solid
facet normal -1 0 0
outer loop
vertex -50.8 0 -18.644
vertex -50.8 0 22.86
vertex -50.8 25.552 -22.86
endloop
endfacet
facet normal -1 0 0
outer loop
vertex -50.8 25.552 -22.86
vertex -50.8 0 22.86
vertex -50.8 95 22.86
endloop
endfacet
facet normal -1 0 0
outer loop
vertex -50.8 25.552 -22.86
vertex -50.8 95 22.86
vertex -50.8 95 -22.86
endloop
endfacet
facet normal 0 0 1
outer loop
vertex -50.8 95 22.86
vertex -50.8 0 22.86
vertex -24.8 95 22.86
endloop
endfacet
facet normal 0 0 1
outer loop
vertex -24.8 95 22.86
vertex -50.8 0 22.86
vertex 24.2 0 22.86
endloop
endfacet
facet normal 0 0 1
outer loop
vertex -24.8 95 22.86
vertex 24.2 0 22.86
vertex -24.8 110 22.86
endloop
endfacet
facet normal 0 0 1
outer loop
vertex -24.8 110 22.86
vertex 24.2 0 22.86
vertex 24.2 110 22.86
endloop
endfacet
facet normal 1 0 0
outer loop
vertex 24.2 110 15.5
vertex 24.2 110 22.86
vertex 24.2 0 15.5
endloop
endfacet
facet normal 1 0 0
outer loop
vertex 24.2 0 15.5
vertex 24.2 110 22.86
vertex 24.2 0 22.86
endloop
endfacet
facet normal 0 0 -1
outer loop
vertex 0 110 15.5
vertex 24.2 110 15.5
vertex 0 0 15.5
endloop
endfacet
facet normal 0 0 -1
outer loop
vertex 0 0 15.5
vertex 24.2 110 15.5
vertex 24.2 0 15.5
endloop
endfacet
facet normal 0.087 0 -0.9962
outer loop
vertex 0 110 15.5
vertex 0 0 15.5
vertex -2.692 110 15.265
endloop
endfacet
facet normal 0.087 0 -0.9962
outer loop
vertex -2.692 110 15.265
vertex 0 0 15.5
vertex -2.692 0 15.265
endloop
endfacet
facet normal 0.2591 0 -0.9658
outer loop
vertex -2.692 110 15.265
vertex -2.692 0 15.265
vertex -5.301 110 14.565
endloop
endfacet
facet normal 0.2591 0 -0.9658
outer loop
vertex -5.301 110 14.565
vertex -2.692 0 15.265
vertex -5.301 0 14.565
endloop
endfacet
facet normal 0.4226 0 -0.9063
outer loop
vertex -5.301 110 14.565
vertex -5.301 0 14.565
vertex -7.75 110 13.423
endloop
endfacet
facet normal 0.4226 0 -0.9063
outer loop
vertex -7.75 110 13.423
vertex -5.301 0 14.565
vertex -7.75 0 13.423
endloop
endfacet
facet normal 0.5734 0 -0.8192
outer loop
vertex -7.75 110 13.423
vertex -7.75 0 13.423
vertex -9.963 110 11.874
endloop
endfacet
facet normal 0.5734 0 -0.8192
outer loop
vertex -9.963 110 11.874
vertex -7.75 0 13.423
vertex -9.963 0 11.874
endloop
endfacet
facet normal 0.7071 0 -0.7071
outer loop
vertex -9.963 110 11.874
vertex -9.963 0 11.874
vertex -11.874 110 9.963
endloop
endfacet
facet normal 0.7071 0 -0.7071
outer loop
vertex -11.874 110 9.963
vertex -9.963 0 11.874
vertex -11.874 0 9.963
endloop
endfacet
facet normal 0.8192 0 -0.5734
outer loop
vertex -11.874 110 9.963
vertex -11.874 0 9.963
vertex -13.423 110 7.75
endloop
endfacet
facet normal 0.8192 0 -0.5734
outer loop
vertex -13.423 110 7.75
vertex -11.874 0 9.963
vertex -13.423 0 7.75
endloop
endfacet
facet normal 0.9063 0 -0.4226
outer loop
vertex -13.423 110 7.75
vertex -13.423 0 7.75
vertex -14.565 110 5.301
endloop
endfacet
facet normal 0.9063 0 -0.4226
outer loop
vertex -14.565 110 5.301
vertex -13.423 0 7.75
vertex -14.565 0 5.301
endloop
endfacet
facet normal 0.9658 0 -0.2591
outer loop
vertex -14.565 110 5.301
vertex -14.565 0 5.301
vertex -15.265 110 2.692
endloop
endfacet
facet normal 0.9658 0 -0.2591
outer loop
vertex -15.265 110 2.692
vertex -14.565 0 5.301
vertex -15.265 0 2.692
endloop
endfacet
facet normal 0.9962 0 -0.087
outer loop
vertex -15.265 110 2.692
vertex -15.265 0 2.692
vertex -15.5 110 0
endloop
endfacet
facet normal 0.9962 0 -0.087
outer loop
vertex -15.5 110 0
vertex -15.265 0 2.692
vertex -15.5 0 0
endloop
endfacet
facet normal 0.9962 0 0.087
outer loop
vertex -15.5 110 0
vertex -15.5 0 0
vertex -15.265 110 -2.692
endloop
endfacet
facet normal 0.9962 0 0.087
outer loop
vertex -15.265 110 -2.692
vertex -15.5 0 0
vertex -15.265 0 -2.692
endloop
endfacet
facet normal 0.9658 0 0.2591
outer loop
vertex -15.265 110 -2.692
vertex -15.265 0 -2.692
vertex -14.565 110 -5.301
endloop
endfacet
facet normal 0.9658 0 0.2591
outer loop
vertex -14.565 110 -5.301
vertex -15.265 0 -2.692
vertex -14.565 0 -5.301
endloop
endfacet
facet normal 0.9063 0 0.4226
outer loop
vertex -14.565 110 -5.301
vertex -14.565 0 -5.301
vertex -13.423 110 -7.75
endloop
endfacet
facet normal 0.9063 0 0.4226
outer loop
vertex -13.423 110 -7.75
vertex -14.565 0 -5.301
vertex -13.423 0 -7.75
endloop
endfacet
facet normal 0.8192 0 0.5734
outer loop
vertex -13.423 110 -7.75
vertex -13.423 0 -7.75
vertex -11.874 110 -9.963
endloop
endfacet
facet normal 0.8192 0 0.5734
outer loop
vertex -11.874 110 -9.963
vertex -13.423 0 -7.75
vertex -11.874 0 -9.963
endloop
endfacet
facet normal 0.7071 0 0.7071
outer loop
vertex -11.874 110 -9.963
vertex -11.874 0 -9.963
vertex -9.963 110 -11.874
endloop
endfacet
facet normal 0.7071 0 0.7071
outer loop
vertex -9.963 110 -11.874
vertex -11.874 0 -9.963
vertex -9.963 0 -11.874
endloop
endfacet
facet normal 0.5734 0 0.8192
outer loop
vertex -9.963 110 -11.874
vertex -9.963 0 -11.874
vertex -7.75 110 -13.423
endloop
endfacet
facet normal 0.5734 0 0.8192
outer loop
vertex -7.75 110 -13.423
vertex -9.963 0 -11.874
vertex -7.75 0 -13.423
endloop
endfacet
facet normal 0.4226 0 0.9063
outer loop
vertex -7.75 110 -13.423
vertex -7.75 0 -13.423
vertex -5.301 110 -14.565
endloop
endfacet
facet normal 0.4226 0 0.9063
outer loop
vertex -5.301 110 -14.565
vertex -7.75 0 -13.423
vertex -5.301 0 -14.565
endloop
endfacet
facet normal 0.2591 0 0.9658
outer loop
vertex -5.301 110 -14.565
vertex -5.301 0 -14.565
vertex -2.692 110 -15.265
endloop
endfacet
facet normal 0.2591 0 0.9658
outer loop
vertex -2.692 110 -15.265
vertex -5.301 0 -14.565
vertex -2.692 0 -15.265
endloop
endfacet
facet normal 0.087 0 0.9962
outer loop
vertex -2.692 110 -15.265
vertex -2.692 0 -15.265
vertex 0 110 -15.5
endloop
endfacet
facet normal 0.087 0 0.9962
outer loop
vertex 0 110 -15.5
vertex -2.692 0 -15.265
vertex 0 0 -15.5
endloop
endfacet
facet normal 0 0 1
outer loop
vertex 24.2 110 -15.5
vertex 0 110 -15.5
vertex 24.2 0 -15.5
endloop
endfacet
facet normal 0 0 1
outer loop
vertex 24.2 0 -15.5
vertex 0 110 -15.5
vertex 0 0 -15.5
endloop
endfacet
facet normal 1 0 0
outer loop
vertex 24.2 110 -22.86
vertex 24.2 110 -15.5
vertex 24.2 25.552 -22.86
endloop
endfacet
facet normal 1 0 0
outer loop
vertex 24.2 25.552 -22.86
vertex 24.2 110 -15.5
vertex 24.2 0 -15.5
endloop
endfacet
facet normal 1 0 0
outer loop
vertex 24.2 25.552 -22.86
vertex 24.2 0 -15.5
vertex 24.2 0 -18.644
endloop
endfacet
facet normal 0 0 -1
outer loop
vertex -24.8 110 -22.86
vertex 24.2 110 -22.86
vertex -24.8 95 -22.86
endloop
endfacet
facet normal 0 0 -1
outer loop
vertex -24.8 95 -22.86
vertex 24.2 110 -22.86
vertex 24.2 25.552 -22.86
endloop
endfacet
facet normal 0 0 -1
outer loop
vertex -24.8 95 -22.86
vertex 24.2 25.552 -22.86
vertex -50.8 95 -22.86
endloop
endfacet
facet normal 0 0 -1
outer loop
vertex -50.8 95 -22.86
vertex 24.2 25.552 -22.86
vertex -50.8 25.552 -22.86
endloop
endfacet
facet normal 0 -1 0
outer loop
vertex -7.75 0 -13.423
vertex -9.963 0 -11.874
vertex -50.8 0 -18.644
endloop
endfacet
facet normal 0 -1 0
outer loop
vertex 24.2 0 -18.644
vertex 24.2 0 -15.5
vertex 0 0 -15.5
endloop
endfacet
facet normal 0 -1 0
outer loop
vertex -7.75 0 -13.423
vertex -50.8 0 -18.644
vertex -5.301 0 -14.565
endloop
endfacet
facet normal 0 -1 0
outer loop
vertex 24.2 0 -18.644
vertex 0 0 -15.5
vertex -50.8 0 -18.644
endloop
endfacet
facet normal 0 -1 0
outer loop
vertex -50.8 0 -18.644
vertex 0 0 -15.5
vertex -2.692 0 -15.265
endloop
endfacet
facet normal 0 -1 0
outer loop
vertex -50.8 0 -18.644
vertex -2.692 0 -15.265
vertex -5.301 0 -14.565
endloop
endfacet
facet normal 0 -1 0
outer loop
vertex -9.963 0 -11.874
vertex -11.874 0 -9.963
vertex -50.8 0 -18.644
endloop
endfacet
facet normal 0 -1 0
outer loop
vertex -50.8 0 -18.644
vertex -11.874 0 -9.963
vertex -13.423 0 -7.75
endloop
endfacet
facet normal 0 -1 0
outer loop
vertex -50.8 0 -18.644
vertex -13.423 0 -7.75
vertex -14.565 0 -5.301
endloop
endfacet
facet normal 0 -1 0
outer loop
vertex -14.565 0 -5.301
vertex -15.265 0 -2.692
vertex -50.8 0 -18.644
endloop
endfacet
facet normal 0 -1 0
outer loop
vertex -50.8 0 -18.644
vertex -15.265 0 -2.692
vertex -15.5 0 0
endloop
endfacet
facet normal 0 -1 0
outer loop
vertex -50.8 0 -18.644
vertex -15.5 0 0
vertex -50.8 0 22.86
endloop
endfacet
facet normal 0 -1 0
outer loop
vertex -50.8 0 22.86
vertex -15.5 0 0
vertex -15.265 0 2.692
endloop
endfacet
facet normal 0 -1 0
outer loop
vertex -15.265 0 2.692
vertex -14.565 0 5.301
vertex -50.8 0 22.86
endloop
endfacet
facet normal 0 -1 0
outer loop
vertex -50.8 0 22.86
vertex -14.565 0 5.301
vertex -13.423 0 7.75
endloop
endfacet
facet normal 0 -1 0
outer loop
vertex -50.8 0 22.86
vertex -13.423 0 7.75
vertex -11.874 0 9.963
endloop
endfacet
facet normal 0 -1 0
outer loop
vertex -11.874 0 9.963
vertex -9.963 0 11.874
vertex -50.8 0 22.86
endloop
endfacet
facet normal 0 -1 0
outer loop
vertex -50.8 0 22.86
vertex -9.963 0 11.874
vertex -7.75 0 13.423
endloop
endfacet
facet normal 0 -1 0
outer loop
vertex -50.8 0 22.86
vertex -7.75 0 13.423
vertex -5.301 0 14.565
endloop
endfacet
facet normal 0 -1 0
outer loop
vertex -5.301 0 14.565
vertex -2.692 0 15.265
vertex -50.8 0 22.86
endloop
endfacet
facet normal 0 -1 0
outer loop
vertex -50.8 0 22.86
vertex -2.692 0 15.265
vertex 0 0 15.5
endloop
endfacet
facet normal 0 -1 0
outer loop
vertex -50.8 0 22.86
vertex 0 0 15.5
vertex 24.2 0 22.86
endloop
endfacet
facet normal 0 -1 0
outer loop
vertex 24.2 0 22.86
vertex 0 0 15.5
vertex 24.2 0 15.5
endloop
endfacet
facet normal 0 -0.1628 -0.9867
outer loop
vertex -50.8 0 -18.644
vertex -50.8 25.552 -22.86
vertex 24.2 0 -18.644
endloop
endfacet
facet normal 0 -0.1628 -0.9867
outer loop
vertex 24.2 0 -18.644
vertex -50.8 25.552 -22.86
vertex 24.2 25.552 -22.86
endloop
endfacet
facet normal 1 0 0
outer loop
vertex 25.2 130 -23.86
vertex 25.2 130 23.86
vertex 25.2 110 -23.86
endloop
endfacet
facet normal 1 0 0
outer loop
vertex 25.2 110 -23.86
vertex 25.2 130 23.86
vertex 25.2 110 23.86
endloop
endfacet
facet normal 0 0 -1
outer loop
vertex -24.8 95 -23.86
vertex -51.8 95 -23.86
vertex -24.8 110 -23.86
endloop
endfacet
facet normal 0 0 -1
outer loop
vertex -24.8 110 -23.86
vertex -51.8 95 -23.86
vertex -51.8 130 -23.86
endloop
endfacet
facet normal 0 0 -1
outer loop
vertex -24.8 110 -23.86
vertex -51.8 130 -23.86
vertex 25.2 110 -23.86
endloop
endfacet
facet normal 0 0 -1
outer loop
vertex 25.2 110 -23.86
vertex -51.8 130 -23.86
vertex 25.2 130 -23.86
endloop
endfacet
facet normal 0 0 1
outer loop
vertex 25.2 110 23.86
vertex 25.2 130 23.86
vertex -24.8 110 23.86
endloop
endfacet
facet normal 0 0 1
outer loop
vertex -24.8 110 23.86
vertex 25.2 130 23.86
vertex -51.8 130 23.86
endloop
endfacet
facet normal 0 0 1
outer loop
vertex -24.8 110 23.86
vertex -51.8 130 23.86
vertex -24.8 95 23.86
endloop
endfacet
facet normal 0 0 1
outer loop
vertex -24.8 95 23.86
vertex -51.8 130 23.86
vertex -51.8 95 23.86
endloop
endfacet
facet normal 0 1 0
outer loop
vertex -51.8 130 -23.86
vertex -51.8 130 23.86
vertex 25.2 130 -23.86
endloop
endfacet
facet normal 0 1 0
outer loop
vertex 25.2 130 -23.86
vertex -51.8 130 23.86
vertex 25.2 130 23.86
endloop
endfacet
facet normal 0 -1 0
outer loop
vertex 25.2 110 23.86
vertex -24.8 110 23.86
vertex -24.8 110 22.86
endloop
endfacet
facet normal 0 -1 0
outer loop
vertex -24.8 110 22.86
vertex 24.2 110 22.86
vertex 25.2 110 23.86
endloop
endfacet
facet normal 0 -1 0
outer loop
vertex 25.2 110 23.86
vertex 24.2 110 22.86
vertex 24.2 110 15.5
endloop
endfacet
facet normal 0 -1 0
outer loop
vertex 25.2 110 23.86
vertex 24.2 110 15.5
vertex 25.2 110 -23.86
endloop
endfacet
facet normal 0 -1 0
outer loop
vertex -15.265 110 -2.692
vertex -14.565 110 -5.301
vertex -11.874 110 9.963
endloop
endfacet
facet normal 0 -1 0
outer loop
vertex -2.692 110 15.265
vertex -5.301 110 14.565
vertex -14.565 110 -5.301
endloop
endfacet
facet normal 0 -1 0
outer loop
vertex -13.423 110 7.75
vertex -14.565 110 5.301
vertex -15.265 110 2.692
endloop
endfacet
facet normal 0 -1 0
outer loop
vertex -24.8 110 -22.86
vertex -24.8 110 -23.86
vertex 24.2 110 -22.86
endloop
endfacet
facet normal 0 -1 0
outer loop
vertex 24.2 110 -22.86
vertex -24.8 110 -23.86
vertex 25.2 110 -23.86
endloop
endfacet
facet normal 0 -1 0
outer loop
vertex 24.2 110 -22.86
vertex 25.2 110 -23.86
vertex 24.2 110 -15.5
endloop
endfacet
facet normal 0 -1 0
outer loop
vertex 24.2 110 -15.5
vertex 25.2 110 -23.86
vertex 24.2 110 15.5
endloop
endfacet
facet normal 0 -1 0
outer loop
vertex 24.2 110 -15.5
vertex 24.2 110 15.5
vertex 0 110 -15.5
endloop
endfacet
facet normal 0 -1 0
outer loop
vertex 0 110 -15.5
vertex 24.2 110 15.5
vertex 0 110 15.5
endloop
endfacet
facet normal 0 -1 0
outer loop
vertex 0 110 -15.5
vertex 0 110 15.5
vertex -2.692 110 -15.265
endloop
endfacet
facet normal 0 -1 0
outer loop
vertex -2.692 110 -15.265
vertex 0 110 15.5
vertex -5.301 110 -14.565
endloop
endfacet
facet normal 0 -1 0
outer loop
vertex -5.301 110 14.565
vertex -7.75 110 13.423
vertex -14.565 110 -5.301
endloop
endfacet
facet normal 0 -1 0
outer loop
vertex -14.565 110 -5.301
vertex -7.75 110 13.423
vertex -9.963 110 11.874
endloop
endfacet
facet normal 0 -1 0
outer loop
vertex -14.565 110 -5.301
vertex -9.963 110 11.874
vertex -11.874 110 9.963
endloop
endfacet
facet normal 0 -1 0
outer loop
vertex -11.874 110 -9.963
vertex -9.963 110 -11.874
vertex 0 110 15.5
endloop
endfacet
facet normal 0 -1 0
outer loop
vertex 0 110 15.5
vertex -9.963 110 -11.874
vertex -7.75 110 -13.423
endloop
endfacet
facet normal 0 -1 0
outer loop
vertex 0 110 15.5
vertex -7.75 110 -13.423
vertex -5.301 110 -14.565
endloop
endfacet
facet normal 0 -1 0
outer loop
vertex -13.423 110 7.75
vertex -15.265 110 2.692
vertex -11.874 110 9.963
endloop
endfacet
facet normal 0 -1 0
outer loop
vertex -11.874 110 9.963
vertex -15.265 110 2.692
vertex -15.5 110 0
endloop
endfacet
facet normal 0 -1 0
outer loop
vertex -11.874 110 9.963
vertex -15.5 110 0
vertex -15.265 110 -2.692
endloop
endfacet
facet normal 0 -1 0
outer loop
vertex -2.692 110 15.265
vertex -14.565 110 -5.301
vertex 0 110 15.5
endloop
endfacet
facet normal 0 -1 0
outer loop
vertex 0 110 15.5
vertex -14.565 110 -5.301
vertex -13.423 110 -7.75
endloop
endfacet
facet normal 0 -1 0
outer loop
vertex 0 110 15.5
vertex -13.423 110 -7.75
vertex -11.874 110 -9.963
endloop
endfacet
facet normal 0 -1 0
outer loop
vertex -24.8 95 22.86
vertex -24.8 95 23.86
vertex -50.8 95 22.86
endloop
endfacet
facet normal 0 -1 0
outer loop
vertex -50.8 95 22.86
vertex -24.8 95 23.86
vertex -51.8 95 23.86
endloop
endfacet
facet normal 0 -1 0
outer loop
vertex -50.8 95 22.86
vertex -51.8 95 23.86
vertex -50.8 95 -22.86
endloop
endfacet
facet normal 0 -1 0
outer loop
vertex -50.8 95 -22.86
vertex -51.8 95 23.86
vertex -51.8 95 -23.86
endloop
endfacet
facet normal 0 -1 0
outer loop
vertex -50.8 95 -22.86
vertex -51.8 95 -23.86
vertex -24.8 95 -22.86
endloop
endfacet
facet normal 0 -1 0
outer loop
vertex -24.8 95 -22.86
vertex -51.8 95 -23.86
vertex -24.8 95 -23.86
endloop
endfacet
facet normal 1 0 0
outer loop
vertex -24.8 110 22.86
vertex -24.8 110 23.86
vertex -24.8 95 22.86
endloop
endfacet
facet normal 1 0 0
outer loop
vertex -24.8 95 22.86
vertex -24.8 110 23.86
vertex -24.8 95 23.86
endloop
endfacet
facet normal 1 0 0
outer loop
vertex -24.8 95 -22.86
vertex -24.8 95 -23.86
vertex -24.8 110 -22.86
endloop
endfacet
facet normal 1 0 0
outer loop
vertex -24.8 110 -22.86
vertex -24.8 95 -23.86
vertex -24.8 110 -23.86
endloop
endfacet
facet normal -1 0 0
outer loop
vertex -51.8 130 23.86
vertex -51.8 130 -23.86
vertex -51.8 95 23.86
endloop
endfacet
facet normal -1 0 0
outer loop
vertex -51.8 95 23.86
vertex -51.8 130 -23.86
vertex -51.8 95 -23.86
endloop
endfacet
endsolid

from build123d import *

# Parameters (mm, degrees)
BOSS_EXTRUDE1_DEPTH = 95
CUT_EXTRUDE1_DEPTH  = 124.177025455
BOSS_EXTRUDE2_DEPTH = 15
SKETCH4_W           = 50
SKETCH4_H           = 47.72
BOSS_EXTRUDE3_DEPTH = 20
SKETCH5_W           = 27
SKETCH5_H           = 47.72
BOSS_EXTRUDE4_DEPTH = 35


with BuildPart() as part:
    # Sketch1 → Boss-Extrude1 (new body)
    with BuildSketch(Plane(origin=(0, 0, 0), x_dir=(1, 0, 0), z_dir=(0, 1, 0))):
        with BuildLine():
            Line((-50.8, 22.86), (24.2, 22.86))
            Line((24.2, 22.86), (24.2, 15.5))
            Line((24.2, 15.5), (0, 15.5))
            ThreePointArc((0, 15.5), (-15.5, 0), (0, -15.5))
            Line((0, -15.5), (24.2, -15.5))
            Line((24.2, -15.5), (24.2, -22.86))
            Line((24.2, -22.86), (-50.8, -22.86))
            Line((-50.8, -22.86), (-50.8, 22.86))
        make_face()
    extrude(amount=BOSS_EXTRUDE1_DEPTH)

    # Sketch2 → Cut-Extrude1 (cut, through all)
    with BuildSketch(Plane(origin=(24.2, 0, 0), x_dir=(0, 0, -1), z_dir=(1, 0, 0))):
        Polygon((22.86, 0), (18.6436, 0), (22.86, 25.5524), align=None)
    extrude(amount=-CUT_EXTRUDE1_DEPTH, mode=Mode.SUBTRACT)

    # Sketch3 → Boss-Extrude2 (add)
    with BuildSketch(Plane(origin=(0, 95, 0), x_dir=(1, 0, 0), z_dir=(0, 1, 0))):
        with BuildLine():
            Line((24.2, 15.5), (24.2, 22.86))
            Line((24.2, 22.86), (-24.8, 22.86))
            Line((-24.8, 22.86), (-24.8, -22.86))
            Line((-24.8, -22.86), (24.2, -22.86))
            Line((24.2, -22.86), (24.2, -15.5))
            Line((24.2, -15.5), (0, -15.5))
            ThreePointArc((0, -15.5), (-15.5, 0), (0, 15.5))
            Line((0, 15.5), (24.2, 15.5))
        make_face()
    extrude(amount=BOSS_EXTRUDE2_DEPTH)

    # Sketch4 → Boss-Extrude3 (add)
    with BuildSketch(Plane(origin=(0, 110, 0), x_dir=(1, 0, 0), z_dir=(0, 1, 0))):
        with Locations((0.2, 0)):
            Rectangle(SKETCH4_W, SKETCH4_H)
    extrude(amount=BOSS_EXTRUDE3_DEPTH)

    # Sketch5 → Boss-Extrude4 (add)
    with BuildSketch(Plane(origin=(0, 95, 0), x_dir=(1, 0, 0), z_dir=(0, 1, 0))):
        with Locations((-38.3, 0)):
            Rectangle(SKETCH5_W, SKETCH5_H)
    extrude(amount=BOSS_EXTRUDE4_DEPTH)


solid = part.part
